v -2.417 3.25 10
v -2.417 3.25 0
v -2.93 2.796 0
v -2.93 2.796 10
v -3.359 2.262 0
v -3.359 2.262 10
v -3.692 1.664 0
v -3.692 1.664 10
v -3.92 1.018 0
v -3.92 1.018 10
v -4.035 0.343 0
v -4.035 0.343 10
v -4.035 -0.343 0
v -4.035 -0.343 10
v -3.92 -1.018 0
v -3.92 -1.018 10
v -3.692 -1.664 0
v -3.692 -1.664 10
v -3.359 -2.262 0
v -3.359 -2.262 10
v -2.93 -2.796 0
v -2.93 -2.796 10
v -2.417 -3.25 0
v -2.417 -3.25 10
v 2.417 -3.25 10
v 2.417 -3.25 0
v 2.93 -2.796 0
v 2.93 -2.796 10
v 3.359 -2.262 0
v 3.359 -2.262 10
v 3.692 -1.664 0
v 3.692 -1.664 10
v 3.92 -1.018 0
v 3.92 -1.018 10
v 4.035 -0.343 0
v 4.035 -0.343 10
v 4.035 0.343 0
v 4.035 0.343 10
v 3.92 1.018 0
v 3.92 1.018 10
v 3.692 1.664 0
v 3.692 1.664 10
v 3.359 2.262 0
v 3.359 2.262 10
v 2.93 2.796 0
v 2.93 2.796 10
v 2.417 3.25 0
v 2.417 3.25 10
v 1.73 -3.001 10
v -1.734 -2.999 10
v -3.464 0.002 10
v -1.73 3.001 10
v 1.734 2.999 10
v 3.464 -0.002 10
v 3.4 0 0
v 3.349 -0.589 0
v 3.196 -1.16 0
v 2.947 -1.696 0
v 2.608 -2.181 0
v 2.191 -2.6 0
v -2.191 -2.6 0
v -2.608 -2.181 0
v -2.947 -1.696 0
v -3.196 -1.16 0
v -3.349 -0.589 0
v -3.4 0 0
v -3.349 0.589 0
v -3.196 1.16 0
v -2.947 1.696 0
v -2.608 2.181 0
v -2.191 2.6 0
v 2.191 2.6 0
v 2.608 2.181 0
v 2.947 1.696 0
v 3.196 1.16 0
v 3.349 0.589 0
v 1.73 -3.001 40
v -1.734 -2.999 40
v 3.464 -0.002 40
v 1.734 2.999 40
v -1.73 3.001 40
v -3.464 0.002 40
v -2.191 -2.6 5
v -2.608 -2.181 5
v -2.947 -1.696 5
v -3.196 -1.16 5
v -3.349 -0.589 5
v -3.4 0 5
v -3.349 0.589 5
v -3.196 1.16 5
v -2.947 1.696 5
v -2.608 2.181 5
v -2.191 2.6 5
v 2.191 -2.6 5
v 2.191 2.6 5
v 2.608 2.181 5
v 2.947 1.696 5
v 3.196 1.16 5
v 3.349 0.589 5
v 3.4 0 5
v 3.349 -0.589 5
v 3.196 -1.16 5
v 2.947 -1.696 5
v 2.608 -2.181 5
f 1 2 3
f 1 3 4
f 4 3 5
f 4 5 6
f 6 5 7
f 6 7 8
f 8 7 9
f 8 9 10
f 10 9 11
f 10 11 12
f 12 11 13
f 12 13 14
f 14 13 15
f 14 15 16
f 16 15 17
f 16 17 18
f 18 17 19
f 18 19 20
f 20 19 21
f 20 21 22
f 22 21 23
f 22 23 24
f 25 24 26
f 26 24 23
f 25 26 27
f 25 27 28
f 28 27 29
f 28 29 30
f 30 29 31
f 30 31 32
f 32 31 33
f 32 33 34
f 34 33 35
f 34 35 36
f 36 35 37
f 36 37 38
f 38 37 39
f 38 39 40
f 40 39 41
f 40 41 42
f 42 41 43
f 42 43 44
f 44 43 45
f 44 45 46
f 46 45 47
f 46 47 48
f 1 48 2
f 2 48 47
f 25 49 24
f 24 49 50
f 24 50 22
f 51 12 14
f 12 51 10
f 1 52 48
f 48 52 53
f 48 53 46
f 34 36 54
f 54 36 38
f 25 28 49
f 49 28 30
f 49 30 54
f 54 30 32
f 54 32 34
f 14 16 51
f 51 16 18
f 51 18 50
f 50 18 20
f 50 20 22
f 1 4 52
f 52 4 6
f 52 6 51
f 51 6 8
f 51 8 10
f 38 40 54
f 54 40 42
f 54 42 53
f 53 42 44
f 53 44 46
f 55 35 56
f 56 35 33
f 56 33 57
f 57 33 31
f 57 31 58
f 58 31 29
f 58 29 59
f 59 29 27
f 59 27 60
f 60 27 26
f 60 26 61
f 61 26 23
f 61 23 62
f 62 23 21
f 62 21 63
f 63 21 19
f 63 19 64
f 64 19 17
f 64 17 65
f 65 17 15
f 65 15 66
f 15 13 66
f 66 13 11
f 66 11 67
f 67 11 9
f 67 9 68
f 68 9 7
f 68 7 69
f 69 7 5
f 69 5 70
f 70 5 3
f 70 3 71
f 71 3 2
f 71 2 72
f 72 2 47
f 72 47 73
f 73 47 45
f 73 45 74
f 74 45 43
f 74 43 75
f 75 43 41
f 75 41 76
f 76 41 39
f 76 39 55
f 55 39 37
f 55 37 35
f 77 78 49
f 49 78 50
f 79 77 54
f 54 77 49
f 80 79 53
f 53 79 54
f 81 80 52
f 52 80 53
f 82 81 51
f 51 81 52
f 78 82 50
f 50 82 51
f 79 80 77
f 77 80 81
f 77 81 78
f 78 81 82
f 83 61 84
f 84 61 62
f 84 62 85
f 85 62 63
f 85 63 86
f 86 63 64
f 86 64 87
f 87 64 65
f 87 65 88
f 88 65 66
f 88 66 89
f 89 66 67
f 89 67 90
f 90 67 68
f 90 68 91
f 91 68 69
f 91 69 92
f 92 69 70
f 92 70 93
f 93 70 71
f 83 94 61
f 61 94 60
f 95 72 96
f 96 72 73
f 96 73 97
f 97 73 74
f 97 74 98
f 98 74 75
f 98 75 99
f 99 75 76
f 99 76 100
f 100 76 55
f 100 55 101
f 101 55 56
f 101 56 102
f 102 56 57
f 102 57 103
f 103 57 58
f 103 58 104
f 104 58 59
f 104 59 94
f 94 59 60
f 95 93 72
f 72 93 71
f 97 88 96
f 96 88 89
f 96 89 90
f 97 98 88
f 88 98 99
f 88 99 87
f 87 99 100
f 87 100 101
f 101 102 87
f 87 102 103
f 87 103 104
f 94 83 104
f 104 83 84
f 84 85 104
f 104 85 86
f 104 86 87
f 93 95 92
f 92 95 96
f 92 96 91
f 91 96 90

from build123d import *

# Parameters (mm, degrees)
BOSS_EXTRUDE2_DEPTH = 10
BOSS_EXTRUDE3_DEPTH = 30
CUT_EXTRUDE1_DEPTH  = 5


with BuildPart() as part:
    # Sketch1 → Boss-Extrude2 (new body)
    with BuildSketch(Plane.XY):
        with BuildLine():
            Line((-2.416609195, 3.25), (2.416609195, 3.25))
            ThreePointArc((2.416609195, 3.25), (4.05, 0), (2.416609195, -3.25))
            Line((2.416609195, -3.25), (-2.416609195, -3.25))
            ThreePointArc((-2.416609195, -3.25), (-4.05, 0), (-2.416609195, 3.25))
        make_face()
    extrude(amount=BOSS_EXTRUDE2_DEPTH)

    # Sketch4 → Boss-Extrude3 (add)
    with BuildSketch(Plane.XY.offset(10)):
        Polygon((1.730250139, -3.001038896), (3.464100991, -0.002078873), (1.733850853, 2.998960023), (-1.730250139, 3.001038896), (-3.464100991, 0.002078873), (-1.733850853, -2.998960023), align=None)
    extrude(amount=BOSS_EXTRUDE3_DEPTH)

    # Sketch3 → Cut-Extrude1 (cut)
    with BuildSketch(Plane(origin=(0, 0, 0), x_dir=(-1, 0, 0), z_dir=(0, 0, -1))):
        with BuildLine():
            Line((2.19089023, 2.6), (-2.19089023, 2.6))
            ThreePointArc((-2.19089023, 2.6), (-3.4, 0), (-2.19089023, -2.6))
            Line((-2.19089023, -2.6), (2.19089023, -2.6))
            ThreePointArc((2.19089023, -2.6), (3.4, 0), (2.19089023, 2.6))
        make_face()
    extrude(amount=-CUT_EXTRUDE1_DEPTH, mode=Mode.SUBTRACT)


solid = part.part
